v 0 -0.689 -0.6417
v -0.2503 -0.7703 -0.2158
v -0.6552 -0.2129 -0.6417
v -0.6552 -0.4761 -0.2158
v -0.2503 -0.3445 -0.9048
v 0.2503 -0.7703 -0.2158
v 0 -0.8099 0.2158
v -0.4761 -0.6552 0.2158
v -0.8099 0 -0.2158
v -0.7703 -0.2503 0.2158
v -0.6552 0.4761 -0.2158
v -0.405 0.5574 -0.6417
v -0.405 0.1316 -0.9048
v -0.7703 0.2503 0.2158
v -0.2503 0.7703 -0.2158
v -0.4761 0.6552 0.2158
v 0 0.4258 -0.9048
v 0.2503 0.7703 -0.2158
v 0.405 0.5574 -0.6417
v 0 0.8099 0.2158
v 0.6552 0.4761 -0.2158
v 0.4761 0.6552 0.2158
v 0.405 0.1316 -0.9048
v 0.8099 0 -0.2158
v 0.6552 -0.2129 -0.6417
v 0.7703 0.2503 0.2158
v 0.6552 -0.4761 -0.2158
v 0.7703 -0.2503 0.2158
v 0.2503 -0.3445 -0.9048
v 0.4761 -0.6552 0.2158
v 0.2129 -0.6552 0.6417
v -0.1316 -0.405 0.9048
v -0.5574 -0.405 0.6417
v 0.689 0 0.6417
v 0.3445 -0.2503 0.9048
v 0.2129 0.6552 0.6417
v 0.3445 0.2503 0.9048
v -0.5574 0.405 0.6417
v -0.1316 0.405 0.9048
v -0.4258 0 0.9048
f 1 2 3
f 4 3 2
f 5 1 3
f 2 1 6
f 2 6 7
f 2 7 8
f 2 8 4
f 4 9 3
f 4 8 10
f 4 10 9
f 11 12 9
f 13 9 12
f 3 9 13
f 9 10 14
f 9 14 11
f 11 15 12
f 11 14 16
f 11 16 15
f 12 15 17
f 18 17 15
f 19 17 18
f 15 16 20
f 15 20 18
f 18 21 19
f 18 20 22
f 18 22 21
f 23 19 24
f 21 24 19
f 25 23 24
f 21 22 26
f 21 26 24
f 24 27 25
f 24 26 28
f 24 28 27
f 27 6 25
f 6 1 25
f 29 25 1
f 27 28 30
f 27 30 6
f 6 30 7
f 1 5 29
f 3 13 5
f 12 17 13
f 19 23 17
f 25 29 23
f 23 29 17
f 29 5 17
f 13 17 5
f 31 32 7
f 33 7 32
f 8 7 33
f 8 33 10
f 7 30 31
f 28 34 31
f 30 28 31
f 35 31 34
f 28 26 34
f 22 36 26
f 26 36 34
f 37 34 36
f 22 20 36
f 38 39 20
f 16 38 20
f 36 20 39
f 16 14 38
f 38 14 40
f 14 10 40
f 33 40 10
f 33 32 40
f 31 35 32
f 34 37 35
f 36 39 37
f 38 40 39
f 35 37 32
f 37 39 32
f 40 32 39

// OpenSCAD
polyhedron( points = [[-0.250283173876659, -0.77029240662818, -0.215843459778044], [-0.655249857481921, -0.47606688851922, -0.215843459778044], [-0.809933366566899, 9.98908709100572e-11, -0.215843459778044], [-0.655249858163502, 0.476066888705109, -0.215843459778044], [-0.250283174979481, 0.770292406777705, -0.215843459778044], [0.250283174328727, 0.77029240677771, -0.215843459778044], [0.655249857960406, 0.476066888705109, -0.215843459778044], [0.809933367088134, 9.98908709100572e-11, -0.215843459778044], [0.655249858727489, -0.476066888519217, -0.215843459778044], [0.250283175569884, -0.77029240662818, -0.215843459778044], [8.5958784256665e-10, -0.688970473286587, -0.641650629527862], [-0.65524985746965, -0.212903584800666, -0.641650629314806], [-0.404966682571177, 0.557388821470918, -0.641650629547963], [0.404966684385494, 0.557388821382939, -0.641650629547963], [0.655249859030422, -0.212903585044277, -0.641650629547963], [-0.250283173917317, -0.344485236480213, -0.904813932896721], [-0.40496668258097, 0.131581651696985, -0.904813933118106], [8.88498008011088e-10, 0.425807169590864, -0.904813933118106], [0.404966684300082, 0.131581651617315, -0.904813933118106], [0.250283175515741, -0.344485236328769, -0.904813932816841], [-0.476066887631147, -0.655249858292876, 0.215843460217411], [8.5958784256665e-10, -0.809933367130365, 0.215843460217411], [0.476066888666787, -0.655249858332421, 0.215843460145136], [0.770292405694201, -0.250283174842999, 0.215843460028193], [0.770292404801085, 0.250283174564815, 0.21584345991125], [0.476066886328582, 0.655249858052258, 0.215843459838976], [-2.03058717214837e-09, 0.809933366846999, 0.215843459838976], [-0.476066889851673, 0.655249858091808, 0.21584345991125], [-0.770292406915453, 0.250283174628803, 0.215843460028193], [-0.770292406067288, -0.250283174779012, 0.215843460145136], [-0.557388820869843, -0.404966683330435, 0.641650629532736], [0.212903585454919, -0.655249858184822, 0.64165062931968], [0.688970472175374, -2.69125014105566e-11, 0.64165062936362], [0.212903582959454, 0.655249858099642, 0.641650629246678], [-0.557388822379982, 0.404966683442475, 0.64165062936362], [-0.131581651280677, -0.404966683286768, 0.904813932633064], [0.344485236229432, -0.250283174631545, 0.904813932782172], [0.344485235332027, 0.250283174678324, 0.90481393266523], [-0.131581652935317, 0.404966683438716, 0.90481393266523], [-0.425807169586371, 3.05203228913443e-10, 0.904813932480912]], faces = [[0, 1, 11, 15, 10], [0, 10, 9], [0, 9, 21], [0, 21, 20], [0, 20, 1], [1, 2, 11], [1, 20, 29], [1, 29, 2], [2, 3, 12, 16, 11], [2, 29, 28], [2, 28, 3], [3, 4, 12], [3, 28, 27], [3, 27, 4], [4, 5, 13, 17, 12], [4, 27, 26], [4, 26, 5], [5, 6, 13], [5, 26, 25], [5, 25, 6], [6, 7, 14, 18, 13], [6, 25, 24], [6, 24, 7], [7, 8, 14], [7, 24, 23], [7, 23, 8], [8, 9, 10, 19, 14], [8, 23, 22], [8, 22, 9], [9, 22, 21], [10, 15, 19], [11, 16, 15], [12, 17, 16], [13, 18, 17], [14, 19, 18], [15, 16, 17, 18, 19], [20, 21, 31, 35, 30], [20, 30, 29], [21, 22, 31], [22, 23, 32, 36, 31], [23, 24, 32], [24, 25, 33, 37, 32], [25, 26, 33], [26, 27, 34, 38, 33], [27, 28, 34], [28, 29, 30, 39, 34], [30, 35, 39], [31, 36, 35], [32, 37, 36], [33, 38, 37], [34, 39, 38], [35, 36, 37, 38, 39]]);
